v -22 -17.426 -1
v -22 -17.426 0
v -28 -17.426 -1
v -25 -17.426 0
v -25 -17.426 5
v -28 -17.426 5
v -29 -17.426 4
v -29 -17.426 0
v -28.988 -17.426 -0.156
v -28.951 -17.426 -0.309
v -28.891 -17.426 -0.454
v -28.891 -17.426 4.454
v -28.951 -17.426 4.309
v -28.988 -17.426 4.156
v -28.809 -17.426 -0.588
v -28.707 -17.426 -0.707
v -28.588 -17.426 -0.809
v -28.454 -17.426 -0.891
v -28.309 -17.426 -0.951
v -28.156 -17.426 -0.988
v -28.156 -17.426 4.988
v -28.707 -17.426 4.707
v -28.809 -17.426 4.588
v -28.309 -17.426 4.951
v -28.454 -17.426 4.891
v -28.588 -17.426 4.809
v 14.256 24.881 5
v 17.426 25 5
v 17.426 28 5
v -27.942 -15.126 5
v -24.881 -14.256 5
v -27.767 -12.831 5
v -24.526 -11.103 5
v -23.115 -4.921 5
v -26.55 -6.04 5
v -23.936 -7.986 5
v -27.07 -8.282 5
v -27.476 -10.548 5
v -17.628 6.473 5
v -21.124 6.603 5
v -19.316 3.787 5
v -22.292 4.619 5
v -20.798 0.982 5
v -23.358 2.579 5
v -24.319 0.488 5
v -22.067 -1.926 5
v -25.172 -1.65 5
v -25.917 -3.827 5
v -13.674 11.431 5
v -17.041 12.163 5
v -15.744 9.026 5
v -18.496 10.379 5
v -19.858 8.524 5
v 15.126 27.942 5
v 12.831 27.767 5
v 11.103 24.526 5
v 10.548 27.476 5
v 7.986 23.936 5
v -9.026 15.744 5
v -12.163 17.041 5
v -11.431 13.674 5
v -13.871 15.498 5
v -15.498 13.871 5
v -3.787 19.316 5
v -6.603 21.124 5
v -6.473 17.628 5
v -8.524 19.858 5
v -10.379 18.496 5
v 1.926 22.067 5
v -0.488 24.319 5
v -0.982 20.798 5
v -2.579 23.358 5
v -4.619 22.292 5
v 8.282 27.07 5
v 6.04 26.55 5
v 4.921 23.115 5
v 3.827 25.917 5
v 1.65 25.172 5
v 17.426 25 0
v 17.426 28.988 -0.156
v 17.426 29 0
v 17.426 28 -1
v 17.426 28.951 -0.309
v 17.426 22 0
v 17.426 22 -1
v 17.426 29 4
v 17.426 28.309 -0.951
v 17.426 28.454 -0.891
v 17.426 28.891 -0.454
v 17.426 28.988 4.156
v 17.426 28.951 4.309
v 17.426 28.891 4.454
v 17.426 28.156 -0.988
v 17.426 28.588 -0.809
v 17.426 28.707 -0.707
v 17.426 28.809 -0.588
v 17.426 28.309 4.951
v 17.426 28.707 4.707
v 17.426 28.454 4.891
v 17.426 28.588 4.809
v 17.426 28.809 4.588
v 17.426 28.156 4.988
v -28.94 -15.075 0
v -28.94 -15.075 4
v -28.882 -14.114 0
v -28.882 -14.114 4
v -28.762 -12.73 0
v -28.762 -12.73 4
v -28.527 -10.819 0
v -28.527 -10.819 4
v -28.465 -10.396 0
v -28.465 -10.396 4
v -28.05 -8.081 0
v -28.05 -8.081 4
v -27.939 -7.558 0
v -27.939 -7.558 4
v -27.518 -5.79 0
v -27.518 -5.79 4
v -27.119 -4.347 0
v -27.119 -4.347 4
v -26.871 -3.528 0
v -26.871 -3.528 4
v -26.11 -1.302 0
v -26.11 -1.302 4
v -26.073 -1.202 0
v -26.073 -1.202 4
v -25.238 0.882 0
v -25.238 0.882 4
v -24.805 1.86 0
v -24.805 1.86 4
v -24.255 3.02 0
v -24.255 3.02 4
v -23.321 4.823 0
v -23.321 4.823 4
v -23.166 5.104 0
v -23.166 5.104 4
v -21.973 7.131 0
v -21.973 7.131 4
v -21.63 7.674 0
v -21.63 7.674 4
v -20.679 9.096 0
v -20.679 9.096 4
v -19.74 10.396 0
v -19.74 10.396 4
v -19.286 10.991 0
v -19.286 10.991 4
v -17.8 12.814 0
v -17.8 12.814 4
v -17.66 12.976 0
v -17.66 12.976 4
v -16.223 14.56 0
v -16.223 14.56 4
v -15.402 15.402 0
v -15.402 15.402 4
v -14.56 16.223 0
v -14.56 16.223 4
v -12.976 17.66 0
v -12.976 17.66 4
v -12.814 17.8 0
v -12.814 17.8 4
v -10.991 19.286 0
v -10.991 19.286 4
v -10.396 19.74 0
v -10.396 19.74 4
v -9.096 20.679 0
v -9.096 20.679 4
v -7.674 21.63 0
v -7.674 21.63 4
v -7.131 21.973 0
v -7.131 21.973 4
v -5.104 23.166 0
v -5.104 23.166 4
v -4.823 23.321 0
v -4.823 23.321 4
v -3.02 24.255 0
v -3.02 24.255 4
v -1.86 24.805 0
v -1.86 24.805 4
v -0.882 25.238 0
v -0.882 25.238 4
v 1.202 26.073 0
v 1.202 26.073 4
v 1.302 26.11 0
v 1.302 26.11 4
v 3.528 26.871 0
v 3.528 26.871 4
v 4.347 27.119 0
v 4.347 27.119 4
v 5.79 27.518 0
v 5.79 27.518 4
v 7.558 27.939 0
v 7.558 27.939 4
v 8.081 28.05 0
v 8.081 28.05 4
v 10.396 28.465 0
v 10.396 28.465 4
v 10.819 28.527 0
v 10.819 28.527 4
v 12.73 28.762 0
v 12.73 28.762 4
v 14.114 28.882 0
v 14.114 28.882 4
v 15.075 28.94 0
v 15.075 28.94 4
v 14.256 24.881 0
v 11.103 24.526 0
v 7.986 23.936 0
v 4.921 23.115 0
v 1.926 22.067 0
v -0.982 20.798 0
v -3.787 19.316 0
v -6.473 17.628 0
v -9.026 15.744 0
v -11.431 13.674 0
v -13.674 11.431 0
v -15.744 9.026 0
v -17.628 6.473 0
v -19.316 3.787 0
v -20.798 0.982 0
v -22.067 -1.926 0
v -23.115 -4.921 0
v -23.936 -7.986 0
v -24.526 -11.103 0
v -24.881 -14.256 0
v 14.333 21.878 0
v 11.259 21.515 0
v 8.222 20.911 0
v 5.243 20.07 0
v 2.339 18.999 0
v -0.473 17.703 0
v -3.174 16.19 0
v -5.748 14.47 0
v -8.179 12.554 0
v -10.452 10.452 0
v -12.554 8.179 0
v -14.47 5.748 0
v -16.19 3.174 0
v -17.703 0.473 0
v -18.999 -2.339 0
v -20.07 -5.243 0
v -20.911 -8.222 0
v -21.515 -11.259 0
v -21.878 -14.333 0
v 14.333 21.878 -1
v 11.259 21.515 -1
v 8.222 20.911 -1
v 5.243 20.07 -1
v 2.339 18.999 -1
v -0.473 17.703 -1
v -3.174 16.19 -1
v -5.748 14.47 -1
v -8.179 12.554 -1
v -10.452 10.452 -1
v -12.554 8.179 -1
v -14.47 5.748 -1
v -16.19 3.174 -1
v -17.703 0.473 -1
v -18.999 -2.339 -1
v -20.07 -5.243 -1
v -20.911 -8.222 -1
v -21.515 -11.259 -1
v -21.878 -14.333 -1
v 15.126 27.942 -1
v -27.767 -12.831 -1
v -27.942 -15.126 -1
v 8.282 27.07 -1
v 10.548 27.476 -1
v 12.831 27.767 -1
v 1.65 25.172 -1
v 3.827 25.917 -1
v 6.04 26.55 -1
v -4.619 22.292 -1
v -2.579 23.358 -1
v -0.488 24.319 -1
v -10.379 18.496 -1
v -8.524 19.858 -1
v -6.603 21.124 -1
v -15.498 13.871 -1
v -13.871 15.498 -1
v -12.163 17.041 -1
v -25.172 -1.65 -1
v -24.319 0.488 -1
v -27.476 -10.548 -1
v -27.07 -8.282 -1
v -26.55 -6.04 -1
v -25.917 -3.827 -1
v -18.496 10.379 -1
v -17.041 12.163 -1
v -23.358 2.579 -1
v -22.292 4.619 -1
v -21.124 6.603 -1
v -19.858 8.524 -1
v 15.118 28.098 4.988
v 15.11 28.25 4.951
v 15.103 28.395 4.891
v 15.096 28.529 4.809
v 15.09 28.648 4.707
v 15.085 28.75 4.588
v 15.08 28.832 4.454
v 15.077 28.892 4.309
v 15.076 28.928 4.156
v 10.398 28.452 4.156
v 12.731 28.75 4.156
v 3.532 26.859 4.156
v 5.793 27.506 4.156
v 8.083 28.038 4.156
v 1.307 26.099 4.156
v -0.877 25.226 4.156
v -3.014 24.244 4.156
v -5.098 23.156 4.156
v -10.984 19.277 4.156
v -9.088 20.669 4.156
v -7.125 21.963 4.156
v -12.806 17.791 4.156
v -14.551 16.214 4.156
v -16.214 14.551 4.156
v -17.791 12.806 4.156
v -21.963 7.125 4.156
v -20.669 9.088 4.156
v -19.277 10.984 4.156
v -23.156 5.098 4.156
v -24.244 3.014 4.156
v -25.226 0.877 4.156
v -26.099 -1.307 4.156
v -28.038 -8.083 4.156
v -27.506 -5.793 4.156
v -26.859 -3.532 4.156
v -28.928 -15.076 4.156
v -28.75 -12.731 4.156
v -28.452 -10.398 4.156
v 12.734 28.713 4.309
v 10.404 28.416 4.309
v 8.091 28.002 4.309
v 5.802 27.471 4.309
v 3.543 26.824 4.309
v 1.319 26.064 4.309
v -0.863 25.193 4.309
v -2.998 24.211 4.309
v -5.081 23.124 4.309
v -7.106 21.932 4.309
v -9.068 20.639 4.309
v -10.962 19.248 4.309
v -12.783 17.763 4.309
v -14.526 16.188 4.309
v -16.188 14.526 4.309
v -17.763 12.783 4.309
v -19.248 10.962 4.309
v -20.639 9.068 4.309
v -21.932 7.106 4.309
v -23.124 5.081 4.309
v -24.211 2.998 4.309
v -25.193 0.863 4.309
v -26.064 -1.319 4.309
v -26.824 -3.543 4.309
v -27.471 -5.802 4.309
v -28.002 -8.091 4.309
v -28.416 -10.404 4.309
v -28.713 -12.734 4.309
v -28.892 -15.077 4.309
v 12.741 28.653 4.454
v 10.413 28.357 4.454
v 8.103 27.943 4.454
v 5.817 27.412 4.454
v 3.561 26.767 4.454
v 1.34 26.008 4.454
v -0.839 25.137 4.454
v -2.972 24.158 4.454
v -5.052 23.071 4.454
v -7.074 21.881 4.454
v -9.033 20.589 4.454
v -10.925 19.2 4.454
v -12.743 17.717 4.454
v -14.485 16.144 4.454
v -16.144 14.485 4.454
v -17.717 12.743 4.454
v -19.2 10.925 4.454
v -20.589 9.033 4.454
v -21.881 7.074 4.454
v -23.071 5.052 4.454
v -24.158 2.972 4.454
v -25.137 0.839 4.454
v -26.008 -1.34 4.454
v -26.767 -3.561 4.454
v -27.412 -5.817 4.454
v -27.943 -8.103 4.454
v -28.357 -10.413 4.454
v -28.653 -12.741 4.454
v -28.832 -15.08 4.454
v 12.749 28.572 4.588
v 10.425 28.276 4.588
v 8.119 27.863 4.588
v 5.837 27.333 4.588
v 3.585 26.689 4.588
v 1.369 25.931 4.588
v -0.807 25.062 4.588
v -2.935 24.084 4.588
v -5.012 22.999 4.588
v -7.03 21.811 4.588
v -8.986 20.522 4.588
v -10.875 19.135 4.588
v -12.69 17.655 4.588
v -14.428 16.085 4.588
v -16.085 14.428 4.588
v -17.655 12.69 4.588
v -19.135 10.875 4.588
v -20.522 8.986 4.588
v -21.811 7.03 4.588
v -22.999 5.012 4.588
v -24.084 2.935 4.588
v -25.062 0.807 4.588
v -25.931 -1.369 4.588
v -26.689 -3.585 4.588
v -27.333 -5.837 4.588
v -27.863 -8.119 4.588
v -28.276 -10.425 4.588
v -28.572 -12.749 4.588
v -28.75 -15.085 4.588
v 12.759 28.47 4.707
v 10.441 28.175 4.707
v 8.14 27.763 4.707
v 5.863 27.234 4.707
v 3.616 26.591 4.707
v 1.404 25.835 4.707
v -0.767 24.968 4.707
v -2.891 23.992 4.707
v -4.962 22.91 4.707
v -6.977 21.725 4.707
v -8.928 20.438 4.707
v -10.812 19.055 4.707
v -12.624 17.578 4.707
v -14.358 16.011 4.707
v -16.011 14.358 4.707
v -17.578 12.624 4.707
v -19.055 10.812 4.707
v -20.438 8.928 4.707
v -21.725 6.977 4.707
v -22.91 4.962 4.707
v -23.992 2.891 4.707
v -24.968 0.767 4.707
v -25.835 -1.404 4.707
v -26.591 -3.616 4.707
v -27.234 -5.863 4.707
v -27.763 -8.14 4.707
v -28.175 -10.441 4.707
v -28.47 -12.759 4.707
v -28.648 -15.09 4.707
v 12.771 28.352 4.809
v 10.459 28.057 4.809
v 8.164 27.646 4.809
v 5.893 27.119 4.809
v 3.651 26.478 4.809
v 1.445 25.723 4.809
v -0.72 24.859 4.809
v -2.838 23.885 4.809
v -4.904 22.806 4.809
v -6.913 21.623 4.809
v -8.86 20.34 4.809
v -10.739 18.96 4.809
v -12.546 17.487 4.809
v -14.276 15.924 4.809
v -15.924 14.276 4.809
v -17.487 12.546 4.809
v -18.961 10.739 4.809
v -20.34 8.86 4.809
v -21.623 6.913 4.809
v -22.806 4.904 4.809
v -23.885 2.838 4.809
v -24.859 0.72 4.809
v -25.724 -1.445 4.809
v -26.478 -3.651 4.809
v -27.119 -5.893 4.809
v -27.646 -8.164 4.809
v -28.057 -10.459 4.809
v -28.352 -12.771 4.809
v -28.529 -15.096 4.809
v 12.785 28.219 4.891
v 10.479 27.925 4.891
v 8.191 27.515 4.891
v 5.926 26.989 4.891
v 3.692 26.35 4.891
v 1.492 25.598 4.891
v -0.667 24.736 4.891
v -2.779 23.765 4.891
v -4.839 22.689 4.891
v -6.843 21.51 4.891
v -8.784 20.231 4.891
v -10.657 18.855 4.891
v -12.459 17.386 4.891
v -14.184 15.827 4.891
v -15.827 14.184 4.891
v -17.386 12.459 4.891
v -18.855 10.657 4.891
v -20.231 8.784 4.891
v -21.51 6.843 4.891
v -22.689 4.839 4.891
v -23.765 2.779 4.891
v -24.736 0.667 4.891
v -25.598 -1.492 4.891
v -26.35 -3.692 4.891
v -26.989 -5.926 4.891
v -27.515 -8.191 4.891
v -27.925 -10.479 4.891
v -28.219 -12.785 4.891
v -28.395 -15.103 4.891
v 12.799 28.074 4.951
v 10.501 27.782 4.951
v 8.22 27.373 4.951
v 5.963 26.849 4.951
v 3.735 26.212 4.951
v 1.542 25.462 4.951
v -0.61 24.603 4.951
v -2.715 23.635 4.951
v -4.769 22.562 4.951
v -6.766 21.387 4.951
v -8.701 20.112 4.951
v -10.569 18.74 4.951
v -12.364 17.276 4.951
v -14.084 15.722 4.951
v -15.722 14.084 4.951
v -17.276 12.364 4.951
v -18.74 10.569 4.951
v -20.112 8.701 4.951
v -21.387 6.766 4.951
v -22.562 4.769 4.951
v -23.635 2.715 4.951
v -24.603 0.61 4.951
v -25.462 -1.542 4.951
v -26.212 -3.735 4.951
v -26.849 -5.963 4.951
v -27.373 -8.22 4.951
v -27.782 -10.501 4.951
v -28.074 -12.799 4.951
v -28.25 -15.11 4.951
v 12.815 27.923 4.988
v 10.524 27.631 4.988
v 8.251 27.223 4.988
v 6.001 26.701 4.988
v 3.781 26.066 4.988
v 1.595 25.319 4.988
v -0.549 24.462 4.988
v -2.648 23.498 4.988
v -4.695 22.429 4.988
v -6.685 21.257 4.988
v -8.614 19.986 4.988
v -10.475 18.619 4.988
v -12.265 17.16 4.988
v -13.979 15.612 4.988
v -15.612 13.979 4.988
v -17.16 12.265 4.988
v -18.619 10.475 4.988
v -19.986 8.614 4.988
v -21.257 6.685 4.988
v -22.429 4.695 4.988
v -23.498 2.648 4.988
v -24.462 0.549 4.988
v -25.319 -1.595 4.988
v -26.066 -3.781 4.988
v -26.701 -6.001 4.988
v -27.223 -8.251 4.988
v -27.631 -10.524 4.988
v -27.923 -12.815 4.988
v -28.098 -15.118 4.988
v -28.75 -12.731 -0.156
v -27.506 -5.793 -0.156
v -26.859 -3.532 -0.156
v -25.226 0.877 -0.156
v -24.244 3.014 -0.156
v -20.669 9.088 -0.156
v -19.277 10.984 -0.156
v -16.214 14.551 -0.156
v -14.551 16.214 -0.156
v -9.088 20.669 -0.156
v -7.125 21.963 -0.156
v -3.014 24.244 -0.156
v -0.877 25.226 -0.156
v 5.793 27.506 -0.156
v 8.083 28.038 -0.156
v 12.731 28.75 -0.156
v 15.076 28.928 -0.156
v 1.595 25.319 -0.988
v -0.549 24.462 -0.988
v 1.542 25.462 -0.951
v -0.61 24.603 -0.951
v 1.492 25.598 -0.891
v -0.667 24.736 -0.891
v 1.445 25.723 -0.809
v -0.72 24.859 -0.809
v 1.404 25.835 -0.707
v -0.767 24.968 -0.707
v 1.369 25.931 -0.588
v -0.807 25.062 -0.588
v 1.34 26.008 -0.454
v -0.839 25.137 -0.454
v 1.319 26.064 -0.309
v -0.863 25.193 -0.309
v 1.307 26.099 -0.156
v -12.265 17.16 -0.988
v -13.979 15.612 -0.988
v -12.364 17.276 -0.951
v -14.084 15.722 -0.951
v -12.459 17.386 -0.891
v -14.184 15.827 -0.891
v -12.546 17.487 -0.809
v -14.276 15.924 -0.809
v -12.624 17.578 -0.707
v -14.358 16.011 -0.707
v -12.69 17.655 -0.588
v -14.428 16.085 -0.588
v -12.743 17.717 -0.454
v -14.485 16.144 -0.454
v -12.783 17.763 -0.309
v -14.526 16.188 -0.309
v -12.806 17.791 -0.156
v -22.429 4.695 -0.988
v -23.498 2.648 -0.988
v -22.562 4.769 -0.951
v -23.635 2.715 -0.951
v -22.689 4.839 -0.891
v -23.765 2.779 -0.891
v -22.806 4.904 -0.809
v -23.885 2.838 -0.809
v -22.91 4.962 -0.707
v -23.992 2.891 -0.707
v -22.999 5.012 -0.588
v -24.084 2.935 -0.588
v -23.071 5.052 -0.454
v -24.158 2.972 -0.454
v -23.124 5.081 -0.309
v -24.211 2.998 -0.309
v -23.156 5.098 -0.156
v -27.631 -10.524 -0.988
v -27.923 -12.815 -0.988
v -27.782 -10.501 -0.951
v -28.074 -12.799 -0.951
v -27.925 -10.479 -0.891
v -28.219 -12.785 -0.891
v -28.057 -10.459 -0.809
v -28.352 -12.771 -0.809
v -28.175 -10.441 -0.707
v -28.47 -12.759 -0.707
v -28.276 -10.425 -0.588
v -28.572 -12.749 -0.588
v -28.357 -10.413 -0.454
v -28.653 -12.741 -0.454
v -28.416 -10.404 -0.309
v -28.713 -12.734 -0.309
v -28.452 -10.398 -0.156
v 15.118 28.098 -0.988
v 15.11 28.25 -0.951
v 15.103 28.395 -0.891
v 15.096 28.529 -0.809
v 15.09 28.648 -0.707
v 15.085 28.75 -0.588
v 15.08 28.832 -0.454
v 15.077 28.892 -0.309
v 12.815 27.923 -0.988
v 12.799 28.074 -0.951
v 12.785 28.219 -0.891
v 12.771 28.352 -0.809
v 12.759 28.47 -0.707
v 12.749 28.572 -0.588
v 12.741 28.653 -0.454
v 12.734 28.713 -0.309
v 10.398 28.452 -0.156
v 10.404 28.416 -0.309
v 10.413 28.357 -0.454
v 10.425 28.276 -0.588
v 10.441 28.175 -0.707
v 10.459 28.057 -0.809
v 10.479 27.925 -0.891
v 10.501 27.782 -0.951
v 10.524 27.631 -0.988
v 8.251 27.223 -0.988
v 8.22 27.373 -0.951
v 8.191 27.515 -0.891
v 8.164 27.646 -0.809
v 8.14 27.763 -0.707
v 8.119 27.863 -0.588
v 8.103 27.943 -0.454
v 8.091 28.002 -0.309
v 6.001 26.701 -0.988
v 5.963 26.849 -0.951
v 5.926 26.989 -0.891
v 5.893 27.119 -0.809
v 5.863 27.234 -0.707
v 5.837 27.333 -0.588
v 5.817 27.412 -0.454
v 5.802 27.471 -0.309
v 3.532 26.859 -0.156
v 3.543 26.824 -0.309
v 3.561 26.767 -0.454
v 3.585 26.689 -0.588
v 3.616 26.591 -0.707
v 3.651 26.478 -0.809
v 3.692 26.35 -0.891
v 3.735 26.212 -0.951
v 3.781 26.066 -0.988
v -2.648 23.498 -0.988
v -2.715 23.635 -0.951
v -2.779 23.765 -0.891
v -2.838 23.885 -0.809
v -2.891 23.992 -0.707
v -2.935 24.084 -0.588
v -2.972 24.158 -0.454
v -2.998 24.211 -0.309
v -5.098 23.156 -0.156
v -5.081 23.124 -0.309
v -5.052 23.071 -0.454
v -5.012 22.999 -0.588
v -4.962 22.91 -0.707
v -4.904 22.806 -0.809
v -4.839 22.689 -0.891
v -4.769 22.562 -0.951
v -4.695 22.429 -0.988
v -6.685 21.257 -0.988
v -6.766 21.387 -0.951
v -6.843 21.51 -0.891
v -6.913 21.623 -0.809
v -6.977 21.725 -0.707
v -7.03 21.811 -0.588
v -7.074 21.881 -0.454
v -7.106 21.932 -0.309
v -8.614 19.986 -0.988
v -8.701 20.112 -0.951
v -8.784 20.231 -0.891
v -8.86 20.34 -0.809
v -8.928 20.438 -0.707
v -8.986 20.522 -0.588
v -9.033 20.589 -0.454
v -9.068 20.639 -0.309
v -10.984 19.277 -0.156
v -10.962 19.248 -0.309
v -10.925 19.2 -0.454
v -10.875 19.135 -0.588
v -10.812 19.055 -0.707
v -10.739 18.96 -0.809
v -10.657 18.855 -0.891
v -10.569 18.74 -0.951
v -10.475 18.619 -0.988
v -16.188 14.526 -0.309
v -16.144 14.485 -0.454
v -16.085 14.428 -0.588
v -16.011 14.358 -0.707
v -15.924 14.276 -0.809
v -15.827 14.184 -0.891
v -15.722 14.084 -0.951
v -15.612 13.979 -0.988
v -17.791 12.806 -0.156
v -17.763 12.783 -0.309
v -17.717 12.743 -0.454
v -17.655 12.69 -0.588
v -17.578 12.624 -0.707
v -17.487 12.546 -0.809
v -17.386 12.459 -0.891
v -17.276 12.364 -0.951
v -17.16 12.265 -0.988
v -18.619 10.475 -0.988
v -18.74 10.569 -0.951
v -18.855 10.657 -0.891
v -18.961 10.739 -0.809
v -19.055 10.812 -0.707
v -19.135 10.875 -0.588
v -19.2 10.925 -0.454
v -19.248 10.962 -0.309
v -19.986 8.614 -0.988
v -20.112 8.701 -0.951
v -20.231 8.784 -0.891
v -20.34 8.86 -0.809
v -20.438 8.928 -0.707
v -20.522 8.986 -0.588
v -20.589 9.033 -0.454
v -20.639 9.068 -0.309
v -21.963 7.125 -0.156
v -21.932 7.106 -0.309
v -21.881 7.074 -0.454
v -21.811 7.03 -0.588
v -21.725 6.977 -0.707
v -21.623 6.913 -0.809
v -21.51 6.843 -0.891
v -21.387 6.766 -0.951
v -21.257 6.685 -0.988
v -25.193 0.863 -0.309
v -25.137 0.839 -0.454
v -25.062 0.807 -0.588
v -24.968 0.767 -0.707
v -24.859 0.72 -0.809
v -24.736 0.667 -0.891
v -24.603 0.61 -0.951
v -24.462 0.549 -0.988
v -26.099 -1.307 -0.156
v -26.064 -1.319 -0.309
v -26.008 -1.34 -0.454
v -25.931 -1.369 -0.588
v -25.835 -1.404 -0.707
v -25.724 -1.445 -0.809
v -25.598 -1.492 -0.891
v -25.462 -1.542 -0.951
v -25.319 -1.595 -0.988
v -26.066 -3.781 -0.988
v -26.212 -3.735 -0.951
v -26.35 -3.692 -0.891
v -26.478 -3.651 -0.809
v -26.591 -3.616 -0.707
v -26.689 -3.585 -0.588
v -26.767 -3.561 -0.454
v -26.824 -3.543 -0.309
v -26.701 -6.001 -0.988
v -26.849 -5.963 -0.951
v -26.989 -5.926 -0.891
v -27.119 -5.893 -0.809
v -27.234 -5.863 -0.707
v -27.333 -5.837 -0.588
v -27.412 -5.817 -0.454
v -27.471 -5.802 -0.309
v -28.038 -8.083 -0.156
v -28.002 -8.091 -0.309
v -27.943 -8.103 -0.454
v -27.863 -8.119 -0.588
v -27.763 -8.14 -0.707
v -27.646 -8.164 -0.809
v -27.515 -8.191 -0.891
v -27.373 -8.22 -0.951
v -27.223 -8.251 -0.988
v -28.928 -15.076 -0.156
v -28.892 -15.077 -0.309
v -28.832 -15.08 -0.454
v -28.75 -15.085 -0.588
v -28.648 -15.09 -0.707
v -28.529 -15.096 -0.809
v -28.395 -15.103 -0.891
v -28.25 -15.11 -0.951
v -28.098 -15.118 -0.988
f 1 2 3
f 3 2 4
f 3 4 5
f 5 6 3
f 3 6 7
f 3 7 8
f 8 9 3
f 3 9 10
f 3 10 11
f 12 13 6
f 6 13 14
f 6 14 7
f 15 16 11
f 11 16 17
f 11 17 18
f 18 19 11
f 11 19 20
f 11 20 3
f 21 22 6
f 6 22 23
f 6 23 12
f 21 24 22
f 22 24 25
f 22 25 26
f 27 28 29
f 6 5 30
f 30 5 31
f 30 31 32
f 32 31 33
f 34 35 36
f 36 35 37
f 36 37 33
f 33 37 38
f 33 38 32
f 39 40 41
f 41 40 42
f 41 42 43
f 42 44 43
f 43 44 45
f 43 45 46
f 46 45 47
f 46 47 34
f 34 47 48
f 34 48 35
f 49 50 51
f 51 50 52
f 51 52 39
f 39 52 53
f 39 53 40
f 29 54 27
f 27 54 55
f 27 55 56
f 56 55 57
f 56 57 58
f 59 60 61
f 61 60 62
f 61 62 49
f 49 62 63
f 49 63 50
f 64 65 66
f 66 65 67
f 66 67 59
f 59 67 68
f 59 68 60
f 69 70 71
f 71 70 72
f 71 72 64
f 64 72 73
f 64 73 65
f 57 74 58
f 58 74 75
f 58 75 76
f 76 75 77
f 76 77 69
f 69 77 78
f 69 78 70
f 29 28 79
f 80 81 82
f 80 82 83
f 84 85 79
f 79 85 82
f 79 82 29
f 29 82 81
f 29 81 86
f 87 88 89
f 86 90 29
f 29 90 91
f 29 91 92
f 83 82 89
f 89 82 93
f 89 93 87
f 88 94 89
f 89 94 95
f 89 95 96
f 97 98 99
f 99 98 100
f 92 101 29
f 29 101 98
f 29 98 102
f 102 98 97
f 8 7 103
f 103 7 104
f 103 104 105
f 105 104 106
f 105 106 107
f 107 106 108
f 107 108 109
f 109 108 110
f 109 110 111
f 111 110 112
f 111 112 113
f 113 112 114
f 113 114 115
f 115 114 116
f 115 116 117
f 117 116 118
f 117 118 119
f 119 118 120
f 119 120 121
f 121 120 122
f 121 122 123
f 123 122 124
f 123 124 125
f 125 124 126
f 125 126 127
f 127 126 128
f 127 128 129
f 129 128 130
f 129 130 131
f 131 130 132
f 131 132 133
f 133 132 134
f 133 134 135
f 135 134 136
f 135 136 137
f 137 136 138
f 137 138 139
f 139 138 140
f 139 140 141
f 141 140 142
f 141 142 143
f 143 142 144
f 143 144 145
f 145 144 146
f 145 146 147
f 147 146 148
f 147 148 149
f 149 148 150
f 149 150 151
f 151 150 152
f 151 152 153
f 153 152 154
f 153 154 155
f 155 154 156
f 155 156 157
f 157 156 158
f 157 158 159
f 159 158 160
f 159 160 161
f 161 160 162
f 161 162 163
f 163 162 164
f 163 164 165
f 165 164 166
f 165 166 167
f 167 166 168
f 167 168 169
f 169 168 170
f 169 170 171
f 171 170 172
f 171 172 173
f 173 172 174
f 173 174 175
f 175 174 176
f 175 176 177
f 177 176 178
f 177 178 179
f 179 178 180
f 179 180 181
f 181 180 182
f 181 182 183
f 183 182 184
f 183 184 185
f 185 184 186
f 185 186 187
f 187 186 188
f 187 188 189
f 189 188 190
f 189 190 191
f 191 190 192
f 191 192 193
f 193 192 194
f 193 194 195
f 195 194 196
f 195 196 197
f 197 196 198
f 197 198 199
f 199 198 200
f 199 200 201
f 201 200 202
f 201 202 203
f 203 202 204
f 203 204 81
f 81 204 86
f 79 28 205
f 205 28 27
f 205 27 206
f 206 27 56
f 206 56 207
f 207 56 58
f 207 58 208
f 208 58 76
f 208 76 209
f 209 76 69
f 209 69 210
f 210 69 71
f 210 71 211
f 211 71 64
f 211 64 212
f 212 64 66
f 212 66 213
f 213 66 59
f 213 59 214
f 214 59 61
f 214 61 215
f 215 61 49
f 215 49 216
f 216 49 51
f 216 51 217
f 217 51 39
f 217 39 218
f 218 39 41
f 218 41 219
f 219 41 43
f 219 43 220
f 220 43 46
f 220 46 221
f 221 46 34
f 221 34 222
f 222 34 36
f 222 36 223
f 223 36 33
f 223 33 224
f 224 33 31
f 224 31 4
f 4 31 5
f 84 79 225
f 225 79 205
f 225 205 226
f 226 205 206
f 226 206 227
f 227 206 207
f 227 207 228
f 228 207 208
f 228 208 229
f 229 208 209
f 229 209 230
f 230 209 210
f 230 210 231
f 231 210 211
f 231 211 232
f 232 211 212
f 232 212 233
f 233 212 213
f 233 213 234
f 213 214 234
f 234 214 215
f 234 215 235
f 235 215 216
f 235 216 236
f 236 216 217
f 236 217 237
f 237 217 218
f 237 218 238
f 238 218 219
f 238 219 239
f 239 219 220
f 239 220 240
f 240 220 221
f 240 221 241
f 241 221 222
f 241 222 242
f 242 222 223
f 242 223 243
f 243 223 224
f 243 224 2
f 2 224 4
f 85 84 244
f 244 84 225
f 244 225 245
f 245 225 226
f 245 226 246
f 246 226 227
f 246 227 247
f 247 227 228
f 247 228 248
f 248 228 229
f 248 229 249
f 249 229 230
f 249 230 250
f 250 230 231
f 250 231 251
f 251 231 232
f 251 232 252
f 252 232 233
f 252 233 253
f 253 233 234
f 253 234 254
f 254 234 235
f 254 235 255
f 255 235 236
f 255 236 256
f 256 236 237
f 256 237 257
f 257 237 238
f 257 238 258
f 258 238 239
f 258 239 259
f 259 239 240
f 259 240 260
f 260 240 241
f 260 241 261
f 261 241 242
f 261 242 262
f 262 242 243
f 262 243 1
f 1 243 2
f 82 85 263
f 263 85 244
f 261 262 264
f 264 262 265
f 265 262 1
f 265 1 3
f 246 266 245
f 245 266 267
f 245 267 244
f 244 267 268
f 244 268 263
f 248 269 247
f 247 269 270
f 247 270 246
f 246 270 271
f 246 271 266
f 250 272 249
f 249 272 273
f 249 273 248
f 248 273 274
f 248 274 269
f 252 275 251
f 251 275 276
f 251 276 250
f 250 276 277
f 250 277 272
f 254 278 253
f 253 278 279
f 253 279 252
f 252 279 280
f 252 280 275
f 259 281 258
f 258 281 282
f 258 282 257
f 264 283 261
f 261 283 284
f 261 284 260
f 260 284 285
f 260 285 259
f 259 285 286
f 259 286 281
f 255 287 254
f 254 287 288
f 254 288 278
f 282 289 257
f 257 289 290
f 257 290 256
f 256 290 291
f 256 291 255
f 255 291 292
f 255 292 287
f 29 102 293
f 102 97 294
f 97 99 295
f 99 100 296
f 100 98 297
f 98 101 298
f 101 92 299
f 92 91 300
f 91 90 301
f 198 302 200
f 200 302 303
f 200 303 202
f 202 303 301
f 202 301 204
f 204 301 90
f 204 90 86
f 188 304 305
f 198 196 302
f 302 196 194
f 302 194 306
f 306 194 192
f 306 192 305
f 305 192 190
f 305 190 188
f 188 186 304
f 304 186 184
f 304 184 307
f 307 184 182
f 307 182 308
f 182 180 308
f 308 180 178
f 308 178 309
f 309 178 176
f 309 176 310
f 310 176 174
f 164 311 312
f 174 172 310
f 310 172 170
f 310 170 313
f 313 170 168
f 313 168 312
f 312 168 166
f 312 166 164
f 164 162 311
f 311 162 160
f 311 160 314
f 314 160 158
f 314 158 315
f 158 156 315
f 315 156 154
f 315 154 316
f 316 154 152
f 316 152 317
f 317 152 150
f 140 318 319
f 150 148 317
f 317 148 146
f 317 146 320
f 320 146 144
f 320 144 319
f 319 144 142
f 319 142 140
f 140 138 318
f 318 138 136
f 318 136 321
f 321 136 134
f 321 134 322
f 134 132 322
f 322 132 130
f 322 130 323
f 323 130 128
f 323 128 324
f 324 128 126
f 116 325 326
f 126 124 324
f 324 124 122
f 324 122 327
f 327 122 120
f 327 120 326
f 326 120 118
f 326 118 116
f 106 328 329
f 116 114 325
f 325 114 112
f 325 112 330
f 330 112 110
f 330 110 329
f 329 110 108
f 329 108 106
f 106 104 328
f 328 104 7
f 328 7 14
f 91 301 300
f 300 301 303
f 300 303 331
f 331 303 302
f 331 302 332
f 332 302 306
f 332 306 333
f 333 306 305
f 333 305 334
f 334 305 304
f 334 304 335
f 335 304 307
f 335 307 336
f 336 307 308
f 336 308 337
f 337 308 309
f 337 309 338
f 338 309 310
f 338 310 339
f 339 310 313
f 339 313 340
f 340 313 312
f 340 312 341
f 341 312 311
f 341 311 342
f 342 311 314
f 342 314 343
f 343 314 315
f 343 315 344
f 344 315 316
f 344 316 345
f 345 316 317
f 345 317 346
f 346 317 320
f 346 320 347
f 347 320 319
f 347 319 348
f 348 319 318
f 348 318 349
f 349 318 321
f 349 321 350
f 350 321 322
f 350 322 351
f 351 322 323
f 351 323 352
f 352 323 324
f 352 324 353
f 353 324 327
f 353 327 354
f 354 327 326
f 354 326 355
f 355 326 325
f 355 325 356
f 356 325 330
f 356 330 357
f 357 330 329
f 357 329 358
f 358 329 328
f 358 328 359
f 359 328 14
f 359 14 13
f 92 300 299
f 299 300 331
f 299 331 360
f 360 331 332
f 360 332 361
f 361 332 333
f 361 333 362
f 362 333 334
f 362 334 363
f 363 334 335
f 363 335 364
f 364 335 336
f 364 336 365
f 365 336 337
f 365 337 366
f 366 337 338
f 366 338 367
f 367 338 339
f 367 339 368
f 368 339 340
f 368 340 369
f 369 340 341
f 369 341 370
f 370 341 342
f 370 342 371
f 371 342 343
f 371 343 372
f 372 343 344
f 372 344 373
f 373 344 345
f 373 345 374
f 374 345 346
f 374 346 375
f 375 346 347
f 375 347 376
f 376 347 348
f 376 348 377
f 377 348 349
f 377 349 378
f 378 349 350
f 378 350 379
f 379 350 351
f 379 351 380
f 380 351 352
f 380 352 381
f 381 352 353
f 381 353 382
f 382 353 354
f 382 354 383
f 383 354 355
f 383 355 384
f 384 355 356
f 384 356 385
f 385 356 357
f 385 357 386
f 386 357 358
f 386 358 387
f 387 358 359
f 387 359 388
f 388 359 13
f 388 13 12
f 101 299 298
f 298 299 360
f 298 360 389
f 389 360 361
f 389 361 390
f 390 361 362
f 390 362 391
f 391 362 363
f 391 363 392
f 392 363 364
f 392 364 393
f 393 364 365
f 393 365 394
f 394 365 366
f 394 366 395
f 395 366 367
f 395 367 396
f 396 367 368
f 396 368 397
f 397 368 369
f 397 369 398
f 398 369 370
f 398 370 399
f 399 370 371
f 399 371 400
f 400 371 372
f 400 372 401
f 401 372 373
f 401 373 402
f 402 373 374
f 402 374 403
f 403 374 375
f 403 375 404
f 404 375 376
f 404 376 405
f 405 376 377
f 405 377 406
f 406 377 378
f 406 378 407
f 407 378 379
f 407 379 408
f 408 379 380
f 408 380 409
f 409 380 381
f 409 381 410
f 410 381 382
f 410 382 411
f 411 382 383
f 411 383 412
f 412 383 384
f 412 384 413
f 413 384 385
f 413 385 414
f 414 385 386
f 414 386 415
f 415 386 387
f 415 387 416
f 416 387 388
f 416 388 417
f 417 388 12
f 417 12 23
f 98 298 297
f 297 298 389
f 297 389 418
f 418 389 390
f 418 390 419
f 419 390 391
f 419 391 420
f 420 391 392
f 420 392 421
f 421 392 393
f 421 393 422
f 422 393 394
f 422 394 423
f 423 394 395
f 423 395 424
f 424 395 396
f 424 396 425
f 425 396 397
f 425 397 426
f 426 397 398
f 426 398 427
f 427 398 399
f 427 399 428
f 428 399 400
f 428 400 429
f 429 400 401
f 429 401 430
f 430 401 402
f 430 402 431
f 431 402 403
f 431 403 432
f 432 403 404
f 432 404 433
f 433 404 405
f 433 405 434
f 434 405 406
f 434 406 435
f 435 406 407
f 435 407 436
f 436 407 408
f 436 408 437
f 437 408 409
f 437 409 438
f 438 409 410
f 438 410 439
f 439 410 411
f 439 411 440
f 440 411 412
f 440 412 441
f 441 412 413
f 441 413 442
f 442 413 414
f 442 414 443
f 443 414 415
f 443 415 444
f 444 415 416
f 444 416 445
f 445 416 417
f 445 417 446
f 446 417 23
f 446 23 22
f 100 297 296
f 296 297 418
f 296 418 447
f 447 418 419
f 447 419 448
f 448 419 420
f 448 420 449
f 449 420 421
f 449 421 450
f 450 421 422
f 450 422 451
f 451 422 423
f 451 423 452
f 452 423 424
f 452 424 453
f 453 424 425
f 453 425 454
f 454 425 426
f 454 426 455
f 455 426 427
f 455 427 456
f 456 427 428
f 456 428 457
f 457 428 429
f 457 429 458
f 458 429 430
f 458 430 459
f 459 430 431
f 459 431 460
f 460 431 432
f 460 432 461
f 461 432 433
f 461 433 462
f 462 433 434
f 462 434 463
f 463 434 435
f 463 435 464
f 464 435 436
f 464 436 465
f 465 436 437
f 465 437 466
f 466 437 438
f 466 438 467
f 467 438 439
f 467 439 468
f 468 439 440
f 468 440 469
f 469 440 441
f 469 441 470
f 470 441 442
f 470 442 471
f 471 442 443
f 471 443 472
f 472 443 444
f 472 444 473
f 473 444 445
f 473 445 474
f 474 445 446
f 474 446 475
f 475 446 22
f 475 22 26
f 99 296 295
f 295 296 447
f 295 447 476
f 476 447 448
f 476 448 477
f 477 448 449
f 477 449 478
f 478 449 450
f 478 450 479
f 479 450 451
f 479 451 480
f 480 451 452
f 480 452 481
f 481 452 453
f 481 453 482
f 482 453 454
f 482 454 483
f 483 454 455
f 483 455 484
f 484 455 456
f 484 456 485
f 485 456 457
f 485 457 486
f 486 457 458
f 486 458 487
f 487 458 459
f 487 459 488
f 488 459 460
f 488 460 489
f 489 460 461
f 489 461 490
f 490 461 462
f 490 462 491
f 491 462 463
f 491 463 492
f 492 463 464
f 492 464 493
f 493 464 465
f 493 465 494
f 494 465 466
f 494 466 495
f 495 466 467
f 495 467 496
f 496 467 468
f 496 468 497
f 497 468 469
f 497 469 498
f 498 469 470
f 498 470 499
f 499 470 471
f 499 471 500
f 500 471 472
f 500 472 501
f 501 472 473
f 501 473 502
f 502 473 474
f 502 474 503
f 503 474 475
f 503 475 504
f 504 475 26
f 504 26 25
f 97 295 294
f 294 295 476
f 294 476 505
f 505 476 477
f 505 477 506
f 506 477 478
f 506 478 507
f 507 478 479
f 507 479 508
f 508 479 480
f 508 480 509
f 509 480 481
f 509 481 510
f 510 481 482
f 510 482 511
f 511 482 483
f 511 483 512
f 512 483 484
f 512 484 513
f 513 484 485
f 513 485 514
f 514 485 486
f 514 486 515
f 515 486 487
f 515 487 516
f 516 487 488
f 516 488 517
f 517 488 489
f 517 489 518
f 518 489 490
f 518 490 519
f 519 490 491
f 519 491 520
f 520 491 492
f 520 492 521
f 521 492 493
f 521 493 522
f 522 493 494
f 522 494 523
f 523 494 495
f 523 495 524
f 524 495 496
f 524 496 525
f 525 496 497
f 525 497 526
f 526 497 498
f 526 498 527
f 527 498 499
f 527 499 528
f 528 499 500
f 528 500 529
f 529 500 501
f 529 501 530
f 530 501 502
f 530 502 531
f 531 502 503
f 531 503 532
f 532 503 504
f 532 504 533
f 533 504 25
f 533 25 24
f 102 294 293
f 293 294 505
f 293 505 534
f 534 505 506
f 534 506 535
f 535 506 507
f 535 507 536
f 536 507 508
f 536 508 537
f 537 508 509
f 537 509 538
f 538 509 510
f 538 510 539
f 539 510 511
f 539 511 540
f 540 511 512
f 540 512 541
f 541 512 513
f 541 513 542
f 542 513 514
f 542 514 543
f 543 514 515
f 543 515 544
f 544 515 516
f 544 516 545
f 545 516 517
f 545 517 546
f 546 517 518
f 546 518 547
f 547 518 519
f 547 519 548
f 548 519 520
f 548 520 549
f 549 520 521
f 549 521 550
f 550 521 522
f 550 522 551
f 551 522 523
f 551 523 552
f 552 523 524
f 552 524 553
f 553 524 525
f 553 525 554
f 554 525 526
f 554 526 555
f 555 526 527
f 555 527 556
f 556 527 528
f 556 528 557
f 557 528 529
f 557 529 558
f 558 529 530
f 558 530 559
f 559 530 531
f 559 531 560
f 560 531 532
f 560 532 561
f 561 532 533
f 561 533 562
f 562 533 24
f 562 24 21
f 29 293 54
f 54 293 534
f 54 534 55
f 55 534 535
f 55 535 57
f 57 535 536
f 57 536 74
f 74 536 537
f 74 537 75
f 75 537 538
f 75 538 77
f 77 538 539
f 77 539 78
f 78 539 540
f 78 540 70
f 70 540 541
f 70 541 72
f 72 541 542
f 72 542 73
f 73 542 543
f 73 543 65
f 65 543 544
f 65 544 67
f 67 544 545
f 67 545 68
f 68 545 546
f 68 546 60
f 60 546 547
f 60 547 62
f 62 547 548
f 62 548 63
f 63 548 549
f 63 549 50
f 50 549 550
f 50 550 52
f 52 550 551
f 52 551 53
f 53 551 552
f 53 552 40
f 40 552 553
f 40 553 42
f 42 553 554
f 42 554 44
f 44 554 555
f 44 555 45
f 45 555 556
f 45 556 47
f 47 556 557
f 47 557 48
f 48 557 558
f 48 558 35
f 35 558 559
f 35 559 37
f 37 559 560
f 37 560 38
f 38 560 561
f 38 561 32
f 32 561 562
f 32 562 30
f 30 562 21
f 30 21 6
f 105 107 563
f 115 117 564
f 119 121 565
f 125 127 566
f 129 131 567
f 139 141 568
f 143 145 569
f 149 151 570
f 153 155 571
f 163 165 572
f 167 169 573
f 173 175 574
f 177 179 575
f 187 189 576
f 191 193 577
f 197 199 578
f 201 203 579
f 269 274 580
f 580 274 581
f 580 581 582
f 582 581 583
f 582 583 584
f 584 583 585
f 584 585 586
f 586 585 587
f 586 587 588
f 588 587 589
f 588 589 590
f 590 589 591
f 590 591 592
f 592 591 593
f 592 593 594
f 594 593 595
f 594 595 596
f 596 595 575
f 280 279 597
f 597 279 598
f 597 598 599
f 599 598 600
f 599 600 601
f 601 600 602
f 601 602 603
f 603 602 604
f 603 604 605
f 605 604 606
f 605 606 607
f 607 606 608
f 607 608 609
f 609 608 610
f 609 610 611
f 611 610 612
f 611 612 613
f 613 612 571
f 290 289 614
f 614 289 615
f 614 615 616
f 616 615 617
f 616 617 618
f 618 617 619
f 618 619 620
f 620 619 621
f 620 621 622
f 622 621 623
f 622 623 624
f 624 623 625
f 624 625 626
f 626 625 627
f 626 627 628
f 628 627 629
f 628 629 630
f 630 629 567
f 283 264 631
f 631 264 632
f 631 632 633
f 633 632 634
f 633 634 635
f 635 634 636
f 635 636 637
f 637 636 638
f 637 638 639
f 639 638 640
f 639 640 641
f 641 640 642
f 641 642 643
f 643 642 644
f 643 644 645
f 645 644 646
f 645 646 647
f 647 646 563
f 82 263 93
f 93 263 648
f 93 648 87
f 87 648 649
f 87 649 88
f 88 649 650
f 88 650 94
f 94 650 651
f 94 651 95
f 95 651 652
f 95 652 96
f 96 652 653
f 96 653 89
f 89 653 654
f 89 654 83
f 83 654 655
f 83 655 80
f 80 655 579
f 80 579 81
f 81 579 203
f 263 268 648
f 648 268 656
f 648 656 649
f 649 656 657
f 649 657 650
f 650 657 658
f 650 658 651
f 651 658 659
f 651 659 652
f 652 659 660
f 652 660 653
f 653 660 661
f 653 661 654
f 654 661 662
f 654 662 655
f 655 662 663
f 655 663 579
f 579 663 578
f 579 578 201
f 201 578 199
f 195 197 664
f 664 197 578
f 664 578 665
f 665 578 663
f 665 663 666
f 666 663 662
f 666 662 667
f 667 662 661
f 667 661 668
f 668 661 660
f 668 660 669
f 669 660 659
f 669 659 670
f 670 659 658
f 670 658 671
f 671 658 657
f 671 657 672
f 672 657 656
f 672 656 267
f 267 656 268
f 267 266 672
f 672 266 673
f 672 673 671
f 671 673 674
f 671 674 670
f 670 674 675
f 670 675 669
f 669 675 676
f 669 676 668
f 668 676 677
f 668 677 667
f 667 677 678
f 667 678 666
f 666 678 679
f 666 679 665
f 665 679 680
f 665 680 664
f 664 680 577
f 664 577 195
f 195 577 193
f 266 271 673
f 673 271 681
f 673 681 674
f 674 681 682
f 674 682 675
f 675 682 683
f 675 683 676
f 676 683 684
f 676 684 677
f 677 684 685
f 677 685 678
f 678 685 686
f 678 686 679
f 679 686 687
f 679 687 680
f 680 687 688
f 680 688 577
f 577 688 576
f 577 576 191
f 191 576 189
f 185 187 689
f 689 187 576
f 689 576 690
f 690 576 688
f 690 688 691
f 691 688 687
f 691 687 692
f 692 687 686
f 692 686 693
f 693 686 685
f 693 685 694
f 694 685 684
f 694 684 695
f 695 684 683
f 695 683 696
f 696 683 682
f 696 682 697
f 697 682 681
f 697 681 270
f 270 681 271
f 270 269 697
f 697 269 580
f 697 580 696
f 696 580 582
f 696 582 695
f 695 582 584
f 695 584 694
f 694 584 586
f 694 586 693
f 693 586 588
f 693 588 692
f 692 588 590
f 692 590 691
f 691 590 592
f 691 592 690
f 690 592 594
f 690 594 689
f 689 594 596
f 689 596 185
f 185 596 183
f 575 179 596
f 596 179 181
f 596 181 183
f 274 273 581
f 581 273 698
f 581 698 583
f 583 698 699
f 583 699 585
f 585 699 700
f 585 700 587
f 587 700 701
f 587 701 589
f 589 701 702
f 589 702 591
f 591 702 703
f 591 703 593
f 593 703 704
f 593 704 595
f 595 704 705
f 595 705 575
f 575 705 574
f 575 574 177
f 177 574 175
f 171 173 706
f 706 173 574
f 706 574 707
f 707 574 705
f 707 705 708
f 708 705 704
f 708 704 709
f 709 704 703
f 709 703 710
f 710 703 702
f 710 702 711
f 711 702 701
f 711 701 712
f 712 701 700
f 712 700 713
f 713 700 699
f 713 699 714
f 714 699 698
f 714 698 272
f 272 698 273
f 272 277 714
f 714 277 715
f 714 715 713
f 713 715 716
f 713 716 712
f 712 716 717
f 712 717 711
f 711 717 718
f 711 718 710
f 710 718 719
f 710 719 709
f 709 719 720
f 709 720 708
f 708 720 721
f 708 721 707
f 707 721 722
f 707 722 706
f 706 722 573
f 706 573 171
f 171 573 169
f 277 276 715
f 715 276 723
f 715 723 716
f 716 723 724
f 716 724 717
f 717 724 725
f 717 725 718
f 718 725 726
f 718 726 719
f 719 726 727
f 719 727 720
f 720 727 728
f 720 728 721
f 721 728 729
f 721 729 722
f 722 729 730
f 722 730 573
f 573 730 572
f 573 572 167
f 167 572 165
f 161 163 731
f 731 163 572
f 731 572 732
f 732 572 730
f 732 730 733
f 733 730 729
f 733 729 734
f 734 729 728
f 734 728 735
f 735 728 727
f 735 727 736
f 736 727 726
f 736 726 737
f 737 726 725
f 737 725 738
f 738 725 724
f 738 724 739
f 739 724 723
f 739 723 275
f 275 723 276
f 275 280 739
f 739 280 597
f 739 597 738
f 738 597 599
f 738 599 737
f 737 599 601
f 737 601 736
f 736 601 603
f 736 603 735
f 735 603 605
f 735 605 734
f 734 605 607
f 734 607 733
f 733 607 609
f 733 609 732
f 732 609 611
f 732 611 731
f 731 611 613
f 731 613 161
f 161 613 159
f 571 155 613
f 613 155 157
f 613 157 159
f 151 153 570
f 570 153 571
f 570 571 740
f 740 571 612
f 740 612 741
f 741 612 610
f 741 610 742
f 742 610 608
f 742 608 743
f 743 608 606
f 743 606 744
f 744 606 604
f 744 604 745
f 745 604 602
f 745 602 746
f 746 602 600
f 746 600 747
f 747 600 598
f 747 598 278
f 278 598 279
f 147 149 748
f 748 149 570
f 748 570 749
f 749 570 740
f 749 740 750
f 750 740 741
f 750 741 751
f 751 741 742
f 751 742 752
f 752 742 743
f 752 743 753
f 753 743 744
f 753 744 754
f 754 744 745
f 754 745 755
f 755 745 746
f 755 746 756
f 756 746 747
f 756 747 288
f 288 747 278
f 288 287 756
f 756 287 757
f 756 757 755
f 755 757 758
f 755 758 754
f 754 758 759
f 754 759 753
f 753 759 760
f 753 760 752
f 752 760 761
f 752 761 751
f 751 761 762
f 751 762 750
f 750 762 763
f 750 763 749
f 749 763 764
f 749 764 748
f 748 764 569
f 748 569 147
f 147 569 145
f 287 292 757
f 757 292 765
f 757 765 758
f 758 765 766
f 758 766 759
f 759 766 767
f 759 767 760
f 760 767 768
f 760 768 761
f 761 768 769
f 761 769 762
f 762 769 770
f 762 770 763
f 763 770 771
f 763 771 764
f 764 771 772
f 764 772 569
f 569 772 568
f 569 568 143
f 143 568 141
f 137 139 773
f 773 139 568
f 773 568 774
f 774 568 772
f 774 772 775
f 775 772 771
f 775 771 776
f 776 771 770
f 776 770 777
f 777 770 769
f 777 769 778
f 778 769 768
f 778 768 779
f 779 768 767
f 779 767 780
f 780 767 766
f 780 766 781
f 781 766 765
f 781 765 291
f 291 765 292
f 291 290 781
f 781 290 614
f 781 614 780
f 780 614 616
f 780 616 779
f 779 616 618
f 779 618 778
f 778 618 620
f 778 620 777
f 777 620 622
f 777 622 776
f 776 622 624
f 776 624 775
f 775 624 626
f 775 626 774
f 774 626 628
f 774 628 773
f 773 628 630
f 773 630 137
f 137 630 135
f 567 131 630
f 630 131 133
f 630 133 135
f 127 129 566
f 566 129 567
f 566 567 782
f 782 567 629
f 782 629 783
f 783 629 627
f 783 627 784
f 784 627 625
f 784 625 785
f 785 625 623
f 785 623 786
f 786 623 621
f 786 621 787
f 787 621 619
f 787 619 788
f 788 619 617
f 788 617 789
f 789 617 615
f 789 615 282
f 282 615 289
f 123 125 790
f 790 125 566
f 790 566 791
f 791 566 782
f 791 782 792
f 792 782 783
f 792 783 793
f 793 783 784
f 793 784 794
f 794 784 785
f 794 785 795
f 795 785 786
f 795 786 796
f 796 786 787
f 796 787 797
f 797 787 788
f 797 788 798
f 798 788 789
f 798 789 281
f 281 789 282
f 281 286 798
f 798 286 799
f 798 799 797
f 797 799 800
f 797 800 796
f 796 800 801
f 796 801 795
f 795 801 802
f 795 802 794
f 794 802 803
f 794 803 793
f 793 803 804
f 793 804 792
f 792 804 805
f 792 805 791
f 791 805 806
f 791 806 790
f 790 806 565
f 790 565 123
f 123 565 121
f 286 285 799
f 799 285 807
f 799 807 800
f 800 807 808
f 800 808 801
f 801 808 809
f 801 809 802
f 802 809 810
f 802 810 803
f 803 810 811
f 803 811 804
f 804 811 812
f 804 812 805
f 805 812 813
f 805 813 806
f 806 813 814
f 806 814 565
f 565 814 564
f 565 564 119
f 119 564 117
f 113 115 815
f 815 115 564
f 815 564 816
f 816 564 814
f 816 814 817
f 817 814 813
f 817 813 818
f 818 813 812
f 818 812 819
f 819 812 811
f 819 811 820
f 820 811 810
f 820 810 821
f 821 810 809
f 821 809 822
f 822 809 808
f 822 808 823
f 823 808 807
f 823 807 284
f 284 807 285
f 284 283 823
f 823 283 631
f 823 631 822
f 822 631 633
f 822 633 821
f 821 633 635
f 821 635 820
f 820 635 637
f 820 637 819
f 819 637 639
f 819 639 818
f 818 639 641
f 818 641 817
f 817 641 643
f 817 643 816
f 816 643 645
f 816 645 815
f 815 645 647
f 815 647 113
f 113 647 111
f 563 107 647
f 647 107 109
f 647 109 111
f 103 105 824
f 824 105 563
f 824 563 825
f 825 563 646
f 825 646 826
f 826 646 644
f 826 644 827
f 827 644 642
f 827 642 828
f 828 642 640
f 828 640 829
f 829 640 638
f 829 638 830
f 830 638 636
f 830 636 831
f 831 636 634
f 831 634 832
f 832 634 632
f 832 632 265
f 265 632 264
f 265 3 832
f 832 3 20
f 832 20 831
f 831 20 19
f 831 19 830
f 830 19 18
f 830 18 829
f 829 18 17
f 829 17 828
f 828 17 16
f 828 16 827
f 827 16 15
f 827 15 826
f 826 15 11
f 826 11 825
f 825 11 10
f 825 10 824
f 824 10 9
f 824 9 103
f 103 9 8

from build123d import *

# Parameters (mm, degrees)
SURFACE_EXTRUDE1_1_DEPTH = 5
THICKEN1_T2              = 4
BOSS_EXTRUDE1_DEPTH      = 1
FILLET1_R                = 1


with BuildPart() as body_1:
    # Surface-Extrude1: a surface, the sketch's curves swept straight by 5 mm
    with BuildLine(Plane.XY, mode=Mode.PRIVATE) as surface_extrude1_1_path:
        ThreePointArc((17.426406871192846, 25.000000000000007), (-12.573593128807143, 12.573593128807161), (-24.999999999999993, -17.42640687119283))
    surface_extrude1_1 = Shell.extrude(surface_extrude1_1_path.wire(), (0 * SURFACE_EXTRUDE1_1_DEPTH, 0 * SURFACE_EXTRUDE1_1_DEPTH, 1 * SURFACE_EXTRUDE1_1_DEPTH))
    add(Solid.thicken(surface_extrude1_1, -THICKEN1_T2))

    # Sketch2 → Boss-Extrude1 (add)
    with BuildSketch(Plane(origin=(0, 0, 0), x_dir=(-1, 0, 0), z_dir=(0, 0, -1))):
        with BuildLine():
            Line((-17.42640687119285, 29.00000000000001), (-17.426406871192853, 22.000000000000007))
            ThreePointArc((-17.426406871192853, 22.000000000000007), (10.452272785247494, 10.452272785247523), (21.999999999999993, -17.426406871192828))
            Line((21.999999999999993, -17.426406871192828), (24.999999999999993, -17.42640687119283))
            Line((24.999999999999993, -17.42640687119283), (28.999999999999996, -17.426406871192825))
            ThreePointArc((28.999999999999996, -17.426406871192825), (15.402020253553331, 15.402020253553353), (-17.42640687119285, 29.00000000000001))
        make_face()
    extrude(amount=BOSS_EXTRUDE1_DEPTH)

    # Fillet1
    fillet1_edges = [body_1.edges().sort_by_distance(p)[0] for p in [
        (-15.402020253553328, 15.40202025355335, 5),
        (-15.402020253553342, 15.40202025355336, -1),
    ]]
    fillet(fillet1_edges, radius=FILLET1_R)


solid = body_1.part
